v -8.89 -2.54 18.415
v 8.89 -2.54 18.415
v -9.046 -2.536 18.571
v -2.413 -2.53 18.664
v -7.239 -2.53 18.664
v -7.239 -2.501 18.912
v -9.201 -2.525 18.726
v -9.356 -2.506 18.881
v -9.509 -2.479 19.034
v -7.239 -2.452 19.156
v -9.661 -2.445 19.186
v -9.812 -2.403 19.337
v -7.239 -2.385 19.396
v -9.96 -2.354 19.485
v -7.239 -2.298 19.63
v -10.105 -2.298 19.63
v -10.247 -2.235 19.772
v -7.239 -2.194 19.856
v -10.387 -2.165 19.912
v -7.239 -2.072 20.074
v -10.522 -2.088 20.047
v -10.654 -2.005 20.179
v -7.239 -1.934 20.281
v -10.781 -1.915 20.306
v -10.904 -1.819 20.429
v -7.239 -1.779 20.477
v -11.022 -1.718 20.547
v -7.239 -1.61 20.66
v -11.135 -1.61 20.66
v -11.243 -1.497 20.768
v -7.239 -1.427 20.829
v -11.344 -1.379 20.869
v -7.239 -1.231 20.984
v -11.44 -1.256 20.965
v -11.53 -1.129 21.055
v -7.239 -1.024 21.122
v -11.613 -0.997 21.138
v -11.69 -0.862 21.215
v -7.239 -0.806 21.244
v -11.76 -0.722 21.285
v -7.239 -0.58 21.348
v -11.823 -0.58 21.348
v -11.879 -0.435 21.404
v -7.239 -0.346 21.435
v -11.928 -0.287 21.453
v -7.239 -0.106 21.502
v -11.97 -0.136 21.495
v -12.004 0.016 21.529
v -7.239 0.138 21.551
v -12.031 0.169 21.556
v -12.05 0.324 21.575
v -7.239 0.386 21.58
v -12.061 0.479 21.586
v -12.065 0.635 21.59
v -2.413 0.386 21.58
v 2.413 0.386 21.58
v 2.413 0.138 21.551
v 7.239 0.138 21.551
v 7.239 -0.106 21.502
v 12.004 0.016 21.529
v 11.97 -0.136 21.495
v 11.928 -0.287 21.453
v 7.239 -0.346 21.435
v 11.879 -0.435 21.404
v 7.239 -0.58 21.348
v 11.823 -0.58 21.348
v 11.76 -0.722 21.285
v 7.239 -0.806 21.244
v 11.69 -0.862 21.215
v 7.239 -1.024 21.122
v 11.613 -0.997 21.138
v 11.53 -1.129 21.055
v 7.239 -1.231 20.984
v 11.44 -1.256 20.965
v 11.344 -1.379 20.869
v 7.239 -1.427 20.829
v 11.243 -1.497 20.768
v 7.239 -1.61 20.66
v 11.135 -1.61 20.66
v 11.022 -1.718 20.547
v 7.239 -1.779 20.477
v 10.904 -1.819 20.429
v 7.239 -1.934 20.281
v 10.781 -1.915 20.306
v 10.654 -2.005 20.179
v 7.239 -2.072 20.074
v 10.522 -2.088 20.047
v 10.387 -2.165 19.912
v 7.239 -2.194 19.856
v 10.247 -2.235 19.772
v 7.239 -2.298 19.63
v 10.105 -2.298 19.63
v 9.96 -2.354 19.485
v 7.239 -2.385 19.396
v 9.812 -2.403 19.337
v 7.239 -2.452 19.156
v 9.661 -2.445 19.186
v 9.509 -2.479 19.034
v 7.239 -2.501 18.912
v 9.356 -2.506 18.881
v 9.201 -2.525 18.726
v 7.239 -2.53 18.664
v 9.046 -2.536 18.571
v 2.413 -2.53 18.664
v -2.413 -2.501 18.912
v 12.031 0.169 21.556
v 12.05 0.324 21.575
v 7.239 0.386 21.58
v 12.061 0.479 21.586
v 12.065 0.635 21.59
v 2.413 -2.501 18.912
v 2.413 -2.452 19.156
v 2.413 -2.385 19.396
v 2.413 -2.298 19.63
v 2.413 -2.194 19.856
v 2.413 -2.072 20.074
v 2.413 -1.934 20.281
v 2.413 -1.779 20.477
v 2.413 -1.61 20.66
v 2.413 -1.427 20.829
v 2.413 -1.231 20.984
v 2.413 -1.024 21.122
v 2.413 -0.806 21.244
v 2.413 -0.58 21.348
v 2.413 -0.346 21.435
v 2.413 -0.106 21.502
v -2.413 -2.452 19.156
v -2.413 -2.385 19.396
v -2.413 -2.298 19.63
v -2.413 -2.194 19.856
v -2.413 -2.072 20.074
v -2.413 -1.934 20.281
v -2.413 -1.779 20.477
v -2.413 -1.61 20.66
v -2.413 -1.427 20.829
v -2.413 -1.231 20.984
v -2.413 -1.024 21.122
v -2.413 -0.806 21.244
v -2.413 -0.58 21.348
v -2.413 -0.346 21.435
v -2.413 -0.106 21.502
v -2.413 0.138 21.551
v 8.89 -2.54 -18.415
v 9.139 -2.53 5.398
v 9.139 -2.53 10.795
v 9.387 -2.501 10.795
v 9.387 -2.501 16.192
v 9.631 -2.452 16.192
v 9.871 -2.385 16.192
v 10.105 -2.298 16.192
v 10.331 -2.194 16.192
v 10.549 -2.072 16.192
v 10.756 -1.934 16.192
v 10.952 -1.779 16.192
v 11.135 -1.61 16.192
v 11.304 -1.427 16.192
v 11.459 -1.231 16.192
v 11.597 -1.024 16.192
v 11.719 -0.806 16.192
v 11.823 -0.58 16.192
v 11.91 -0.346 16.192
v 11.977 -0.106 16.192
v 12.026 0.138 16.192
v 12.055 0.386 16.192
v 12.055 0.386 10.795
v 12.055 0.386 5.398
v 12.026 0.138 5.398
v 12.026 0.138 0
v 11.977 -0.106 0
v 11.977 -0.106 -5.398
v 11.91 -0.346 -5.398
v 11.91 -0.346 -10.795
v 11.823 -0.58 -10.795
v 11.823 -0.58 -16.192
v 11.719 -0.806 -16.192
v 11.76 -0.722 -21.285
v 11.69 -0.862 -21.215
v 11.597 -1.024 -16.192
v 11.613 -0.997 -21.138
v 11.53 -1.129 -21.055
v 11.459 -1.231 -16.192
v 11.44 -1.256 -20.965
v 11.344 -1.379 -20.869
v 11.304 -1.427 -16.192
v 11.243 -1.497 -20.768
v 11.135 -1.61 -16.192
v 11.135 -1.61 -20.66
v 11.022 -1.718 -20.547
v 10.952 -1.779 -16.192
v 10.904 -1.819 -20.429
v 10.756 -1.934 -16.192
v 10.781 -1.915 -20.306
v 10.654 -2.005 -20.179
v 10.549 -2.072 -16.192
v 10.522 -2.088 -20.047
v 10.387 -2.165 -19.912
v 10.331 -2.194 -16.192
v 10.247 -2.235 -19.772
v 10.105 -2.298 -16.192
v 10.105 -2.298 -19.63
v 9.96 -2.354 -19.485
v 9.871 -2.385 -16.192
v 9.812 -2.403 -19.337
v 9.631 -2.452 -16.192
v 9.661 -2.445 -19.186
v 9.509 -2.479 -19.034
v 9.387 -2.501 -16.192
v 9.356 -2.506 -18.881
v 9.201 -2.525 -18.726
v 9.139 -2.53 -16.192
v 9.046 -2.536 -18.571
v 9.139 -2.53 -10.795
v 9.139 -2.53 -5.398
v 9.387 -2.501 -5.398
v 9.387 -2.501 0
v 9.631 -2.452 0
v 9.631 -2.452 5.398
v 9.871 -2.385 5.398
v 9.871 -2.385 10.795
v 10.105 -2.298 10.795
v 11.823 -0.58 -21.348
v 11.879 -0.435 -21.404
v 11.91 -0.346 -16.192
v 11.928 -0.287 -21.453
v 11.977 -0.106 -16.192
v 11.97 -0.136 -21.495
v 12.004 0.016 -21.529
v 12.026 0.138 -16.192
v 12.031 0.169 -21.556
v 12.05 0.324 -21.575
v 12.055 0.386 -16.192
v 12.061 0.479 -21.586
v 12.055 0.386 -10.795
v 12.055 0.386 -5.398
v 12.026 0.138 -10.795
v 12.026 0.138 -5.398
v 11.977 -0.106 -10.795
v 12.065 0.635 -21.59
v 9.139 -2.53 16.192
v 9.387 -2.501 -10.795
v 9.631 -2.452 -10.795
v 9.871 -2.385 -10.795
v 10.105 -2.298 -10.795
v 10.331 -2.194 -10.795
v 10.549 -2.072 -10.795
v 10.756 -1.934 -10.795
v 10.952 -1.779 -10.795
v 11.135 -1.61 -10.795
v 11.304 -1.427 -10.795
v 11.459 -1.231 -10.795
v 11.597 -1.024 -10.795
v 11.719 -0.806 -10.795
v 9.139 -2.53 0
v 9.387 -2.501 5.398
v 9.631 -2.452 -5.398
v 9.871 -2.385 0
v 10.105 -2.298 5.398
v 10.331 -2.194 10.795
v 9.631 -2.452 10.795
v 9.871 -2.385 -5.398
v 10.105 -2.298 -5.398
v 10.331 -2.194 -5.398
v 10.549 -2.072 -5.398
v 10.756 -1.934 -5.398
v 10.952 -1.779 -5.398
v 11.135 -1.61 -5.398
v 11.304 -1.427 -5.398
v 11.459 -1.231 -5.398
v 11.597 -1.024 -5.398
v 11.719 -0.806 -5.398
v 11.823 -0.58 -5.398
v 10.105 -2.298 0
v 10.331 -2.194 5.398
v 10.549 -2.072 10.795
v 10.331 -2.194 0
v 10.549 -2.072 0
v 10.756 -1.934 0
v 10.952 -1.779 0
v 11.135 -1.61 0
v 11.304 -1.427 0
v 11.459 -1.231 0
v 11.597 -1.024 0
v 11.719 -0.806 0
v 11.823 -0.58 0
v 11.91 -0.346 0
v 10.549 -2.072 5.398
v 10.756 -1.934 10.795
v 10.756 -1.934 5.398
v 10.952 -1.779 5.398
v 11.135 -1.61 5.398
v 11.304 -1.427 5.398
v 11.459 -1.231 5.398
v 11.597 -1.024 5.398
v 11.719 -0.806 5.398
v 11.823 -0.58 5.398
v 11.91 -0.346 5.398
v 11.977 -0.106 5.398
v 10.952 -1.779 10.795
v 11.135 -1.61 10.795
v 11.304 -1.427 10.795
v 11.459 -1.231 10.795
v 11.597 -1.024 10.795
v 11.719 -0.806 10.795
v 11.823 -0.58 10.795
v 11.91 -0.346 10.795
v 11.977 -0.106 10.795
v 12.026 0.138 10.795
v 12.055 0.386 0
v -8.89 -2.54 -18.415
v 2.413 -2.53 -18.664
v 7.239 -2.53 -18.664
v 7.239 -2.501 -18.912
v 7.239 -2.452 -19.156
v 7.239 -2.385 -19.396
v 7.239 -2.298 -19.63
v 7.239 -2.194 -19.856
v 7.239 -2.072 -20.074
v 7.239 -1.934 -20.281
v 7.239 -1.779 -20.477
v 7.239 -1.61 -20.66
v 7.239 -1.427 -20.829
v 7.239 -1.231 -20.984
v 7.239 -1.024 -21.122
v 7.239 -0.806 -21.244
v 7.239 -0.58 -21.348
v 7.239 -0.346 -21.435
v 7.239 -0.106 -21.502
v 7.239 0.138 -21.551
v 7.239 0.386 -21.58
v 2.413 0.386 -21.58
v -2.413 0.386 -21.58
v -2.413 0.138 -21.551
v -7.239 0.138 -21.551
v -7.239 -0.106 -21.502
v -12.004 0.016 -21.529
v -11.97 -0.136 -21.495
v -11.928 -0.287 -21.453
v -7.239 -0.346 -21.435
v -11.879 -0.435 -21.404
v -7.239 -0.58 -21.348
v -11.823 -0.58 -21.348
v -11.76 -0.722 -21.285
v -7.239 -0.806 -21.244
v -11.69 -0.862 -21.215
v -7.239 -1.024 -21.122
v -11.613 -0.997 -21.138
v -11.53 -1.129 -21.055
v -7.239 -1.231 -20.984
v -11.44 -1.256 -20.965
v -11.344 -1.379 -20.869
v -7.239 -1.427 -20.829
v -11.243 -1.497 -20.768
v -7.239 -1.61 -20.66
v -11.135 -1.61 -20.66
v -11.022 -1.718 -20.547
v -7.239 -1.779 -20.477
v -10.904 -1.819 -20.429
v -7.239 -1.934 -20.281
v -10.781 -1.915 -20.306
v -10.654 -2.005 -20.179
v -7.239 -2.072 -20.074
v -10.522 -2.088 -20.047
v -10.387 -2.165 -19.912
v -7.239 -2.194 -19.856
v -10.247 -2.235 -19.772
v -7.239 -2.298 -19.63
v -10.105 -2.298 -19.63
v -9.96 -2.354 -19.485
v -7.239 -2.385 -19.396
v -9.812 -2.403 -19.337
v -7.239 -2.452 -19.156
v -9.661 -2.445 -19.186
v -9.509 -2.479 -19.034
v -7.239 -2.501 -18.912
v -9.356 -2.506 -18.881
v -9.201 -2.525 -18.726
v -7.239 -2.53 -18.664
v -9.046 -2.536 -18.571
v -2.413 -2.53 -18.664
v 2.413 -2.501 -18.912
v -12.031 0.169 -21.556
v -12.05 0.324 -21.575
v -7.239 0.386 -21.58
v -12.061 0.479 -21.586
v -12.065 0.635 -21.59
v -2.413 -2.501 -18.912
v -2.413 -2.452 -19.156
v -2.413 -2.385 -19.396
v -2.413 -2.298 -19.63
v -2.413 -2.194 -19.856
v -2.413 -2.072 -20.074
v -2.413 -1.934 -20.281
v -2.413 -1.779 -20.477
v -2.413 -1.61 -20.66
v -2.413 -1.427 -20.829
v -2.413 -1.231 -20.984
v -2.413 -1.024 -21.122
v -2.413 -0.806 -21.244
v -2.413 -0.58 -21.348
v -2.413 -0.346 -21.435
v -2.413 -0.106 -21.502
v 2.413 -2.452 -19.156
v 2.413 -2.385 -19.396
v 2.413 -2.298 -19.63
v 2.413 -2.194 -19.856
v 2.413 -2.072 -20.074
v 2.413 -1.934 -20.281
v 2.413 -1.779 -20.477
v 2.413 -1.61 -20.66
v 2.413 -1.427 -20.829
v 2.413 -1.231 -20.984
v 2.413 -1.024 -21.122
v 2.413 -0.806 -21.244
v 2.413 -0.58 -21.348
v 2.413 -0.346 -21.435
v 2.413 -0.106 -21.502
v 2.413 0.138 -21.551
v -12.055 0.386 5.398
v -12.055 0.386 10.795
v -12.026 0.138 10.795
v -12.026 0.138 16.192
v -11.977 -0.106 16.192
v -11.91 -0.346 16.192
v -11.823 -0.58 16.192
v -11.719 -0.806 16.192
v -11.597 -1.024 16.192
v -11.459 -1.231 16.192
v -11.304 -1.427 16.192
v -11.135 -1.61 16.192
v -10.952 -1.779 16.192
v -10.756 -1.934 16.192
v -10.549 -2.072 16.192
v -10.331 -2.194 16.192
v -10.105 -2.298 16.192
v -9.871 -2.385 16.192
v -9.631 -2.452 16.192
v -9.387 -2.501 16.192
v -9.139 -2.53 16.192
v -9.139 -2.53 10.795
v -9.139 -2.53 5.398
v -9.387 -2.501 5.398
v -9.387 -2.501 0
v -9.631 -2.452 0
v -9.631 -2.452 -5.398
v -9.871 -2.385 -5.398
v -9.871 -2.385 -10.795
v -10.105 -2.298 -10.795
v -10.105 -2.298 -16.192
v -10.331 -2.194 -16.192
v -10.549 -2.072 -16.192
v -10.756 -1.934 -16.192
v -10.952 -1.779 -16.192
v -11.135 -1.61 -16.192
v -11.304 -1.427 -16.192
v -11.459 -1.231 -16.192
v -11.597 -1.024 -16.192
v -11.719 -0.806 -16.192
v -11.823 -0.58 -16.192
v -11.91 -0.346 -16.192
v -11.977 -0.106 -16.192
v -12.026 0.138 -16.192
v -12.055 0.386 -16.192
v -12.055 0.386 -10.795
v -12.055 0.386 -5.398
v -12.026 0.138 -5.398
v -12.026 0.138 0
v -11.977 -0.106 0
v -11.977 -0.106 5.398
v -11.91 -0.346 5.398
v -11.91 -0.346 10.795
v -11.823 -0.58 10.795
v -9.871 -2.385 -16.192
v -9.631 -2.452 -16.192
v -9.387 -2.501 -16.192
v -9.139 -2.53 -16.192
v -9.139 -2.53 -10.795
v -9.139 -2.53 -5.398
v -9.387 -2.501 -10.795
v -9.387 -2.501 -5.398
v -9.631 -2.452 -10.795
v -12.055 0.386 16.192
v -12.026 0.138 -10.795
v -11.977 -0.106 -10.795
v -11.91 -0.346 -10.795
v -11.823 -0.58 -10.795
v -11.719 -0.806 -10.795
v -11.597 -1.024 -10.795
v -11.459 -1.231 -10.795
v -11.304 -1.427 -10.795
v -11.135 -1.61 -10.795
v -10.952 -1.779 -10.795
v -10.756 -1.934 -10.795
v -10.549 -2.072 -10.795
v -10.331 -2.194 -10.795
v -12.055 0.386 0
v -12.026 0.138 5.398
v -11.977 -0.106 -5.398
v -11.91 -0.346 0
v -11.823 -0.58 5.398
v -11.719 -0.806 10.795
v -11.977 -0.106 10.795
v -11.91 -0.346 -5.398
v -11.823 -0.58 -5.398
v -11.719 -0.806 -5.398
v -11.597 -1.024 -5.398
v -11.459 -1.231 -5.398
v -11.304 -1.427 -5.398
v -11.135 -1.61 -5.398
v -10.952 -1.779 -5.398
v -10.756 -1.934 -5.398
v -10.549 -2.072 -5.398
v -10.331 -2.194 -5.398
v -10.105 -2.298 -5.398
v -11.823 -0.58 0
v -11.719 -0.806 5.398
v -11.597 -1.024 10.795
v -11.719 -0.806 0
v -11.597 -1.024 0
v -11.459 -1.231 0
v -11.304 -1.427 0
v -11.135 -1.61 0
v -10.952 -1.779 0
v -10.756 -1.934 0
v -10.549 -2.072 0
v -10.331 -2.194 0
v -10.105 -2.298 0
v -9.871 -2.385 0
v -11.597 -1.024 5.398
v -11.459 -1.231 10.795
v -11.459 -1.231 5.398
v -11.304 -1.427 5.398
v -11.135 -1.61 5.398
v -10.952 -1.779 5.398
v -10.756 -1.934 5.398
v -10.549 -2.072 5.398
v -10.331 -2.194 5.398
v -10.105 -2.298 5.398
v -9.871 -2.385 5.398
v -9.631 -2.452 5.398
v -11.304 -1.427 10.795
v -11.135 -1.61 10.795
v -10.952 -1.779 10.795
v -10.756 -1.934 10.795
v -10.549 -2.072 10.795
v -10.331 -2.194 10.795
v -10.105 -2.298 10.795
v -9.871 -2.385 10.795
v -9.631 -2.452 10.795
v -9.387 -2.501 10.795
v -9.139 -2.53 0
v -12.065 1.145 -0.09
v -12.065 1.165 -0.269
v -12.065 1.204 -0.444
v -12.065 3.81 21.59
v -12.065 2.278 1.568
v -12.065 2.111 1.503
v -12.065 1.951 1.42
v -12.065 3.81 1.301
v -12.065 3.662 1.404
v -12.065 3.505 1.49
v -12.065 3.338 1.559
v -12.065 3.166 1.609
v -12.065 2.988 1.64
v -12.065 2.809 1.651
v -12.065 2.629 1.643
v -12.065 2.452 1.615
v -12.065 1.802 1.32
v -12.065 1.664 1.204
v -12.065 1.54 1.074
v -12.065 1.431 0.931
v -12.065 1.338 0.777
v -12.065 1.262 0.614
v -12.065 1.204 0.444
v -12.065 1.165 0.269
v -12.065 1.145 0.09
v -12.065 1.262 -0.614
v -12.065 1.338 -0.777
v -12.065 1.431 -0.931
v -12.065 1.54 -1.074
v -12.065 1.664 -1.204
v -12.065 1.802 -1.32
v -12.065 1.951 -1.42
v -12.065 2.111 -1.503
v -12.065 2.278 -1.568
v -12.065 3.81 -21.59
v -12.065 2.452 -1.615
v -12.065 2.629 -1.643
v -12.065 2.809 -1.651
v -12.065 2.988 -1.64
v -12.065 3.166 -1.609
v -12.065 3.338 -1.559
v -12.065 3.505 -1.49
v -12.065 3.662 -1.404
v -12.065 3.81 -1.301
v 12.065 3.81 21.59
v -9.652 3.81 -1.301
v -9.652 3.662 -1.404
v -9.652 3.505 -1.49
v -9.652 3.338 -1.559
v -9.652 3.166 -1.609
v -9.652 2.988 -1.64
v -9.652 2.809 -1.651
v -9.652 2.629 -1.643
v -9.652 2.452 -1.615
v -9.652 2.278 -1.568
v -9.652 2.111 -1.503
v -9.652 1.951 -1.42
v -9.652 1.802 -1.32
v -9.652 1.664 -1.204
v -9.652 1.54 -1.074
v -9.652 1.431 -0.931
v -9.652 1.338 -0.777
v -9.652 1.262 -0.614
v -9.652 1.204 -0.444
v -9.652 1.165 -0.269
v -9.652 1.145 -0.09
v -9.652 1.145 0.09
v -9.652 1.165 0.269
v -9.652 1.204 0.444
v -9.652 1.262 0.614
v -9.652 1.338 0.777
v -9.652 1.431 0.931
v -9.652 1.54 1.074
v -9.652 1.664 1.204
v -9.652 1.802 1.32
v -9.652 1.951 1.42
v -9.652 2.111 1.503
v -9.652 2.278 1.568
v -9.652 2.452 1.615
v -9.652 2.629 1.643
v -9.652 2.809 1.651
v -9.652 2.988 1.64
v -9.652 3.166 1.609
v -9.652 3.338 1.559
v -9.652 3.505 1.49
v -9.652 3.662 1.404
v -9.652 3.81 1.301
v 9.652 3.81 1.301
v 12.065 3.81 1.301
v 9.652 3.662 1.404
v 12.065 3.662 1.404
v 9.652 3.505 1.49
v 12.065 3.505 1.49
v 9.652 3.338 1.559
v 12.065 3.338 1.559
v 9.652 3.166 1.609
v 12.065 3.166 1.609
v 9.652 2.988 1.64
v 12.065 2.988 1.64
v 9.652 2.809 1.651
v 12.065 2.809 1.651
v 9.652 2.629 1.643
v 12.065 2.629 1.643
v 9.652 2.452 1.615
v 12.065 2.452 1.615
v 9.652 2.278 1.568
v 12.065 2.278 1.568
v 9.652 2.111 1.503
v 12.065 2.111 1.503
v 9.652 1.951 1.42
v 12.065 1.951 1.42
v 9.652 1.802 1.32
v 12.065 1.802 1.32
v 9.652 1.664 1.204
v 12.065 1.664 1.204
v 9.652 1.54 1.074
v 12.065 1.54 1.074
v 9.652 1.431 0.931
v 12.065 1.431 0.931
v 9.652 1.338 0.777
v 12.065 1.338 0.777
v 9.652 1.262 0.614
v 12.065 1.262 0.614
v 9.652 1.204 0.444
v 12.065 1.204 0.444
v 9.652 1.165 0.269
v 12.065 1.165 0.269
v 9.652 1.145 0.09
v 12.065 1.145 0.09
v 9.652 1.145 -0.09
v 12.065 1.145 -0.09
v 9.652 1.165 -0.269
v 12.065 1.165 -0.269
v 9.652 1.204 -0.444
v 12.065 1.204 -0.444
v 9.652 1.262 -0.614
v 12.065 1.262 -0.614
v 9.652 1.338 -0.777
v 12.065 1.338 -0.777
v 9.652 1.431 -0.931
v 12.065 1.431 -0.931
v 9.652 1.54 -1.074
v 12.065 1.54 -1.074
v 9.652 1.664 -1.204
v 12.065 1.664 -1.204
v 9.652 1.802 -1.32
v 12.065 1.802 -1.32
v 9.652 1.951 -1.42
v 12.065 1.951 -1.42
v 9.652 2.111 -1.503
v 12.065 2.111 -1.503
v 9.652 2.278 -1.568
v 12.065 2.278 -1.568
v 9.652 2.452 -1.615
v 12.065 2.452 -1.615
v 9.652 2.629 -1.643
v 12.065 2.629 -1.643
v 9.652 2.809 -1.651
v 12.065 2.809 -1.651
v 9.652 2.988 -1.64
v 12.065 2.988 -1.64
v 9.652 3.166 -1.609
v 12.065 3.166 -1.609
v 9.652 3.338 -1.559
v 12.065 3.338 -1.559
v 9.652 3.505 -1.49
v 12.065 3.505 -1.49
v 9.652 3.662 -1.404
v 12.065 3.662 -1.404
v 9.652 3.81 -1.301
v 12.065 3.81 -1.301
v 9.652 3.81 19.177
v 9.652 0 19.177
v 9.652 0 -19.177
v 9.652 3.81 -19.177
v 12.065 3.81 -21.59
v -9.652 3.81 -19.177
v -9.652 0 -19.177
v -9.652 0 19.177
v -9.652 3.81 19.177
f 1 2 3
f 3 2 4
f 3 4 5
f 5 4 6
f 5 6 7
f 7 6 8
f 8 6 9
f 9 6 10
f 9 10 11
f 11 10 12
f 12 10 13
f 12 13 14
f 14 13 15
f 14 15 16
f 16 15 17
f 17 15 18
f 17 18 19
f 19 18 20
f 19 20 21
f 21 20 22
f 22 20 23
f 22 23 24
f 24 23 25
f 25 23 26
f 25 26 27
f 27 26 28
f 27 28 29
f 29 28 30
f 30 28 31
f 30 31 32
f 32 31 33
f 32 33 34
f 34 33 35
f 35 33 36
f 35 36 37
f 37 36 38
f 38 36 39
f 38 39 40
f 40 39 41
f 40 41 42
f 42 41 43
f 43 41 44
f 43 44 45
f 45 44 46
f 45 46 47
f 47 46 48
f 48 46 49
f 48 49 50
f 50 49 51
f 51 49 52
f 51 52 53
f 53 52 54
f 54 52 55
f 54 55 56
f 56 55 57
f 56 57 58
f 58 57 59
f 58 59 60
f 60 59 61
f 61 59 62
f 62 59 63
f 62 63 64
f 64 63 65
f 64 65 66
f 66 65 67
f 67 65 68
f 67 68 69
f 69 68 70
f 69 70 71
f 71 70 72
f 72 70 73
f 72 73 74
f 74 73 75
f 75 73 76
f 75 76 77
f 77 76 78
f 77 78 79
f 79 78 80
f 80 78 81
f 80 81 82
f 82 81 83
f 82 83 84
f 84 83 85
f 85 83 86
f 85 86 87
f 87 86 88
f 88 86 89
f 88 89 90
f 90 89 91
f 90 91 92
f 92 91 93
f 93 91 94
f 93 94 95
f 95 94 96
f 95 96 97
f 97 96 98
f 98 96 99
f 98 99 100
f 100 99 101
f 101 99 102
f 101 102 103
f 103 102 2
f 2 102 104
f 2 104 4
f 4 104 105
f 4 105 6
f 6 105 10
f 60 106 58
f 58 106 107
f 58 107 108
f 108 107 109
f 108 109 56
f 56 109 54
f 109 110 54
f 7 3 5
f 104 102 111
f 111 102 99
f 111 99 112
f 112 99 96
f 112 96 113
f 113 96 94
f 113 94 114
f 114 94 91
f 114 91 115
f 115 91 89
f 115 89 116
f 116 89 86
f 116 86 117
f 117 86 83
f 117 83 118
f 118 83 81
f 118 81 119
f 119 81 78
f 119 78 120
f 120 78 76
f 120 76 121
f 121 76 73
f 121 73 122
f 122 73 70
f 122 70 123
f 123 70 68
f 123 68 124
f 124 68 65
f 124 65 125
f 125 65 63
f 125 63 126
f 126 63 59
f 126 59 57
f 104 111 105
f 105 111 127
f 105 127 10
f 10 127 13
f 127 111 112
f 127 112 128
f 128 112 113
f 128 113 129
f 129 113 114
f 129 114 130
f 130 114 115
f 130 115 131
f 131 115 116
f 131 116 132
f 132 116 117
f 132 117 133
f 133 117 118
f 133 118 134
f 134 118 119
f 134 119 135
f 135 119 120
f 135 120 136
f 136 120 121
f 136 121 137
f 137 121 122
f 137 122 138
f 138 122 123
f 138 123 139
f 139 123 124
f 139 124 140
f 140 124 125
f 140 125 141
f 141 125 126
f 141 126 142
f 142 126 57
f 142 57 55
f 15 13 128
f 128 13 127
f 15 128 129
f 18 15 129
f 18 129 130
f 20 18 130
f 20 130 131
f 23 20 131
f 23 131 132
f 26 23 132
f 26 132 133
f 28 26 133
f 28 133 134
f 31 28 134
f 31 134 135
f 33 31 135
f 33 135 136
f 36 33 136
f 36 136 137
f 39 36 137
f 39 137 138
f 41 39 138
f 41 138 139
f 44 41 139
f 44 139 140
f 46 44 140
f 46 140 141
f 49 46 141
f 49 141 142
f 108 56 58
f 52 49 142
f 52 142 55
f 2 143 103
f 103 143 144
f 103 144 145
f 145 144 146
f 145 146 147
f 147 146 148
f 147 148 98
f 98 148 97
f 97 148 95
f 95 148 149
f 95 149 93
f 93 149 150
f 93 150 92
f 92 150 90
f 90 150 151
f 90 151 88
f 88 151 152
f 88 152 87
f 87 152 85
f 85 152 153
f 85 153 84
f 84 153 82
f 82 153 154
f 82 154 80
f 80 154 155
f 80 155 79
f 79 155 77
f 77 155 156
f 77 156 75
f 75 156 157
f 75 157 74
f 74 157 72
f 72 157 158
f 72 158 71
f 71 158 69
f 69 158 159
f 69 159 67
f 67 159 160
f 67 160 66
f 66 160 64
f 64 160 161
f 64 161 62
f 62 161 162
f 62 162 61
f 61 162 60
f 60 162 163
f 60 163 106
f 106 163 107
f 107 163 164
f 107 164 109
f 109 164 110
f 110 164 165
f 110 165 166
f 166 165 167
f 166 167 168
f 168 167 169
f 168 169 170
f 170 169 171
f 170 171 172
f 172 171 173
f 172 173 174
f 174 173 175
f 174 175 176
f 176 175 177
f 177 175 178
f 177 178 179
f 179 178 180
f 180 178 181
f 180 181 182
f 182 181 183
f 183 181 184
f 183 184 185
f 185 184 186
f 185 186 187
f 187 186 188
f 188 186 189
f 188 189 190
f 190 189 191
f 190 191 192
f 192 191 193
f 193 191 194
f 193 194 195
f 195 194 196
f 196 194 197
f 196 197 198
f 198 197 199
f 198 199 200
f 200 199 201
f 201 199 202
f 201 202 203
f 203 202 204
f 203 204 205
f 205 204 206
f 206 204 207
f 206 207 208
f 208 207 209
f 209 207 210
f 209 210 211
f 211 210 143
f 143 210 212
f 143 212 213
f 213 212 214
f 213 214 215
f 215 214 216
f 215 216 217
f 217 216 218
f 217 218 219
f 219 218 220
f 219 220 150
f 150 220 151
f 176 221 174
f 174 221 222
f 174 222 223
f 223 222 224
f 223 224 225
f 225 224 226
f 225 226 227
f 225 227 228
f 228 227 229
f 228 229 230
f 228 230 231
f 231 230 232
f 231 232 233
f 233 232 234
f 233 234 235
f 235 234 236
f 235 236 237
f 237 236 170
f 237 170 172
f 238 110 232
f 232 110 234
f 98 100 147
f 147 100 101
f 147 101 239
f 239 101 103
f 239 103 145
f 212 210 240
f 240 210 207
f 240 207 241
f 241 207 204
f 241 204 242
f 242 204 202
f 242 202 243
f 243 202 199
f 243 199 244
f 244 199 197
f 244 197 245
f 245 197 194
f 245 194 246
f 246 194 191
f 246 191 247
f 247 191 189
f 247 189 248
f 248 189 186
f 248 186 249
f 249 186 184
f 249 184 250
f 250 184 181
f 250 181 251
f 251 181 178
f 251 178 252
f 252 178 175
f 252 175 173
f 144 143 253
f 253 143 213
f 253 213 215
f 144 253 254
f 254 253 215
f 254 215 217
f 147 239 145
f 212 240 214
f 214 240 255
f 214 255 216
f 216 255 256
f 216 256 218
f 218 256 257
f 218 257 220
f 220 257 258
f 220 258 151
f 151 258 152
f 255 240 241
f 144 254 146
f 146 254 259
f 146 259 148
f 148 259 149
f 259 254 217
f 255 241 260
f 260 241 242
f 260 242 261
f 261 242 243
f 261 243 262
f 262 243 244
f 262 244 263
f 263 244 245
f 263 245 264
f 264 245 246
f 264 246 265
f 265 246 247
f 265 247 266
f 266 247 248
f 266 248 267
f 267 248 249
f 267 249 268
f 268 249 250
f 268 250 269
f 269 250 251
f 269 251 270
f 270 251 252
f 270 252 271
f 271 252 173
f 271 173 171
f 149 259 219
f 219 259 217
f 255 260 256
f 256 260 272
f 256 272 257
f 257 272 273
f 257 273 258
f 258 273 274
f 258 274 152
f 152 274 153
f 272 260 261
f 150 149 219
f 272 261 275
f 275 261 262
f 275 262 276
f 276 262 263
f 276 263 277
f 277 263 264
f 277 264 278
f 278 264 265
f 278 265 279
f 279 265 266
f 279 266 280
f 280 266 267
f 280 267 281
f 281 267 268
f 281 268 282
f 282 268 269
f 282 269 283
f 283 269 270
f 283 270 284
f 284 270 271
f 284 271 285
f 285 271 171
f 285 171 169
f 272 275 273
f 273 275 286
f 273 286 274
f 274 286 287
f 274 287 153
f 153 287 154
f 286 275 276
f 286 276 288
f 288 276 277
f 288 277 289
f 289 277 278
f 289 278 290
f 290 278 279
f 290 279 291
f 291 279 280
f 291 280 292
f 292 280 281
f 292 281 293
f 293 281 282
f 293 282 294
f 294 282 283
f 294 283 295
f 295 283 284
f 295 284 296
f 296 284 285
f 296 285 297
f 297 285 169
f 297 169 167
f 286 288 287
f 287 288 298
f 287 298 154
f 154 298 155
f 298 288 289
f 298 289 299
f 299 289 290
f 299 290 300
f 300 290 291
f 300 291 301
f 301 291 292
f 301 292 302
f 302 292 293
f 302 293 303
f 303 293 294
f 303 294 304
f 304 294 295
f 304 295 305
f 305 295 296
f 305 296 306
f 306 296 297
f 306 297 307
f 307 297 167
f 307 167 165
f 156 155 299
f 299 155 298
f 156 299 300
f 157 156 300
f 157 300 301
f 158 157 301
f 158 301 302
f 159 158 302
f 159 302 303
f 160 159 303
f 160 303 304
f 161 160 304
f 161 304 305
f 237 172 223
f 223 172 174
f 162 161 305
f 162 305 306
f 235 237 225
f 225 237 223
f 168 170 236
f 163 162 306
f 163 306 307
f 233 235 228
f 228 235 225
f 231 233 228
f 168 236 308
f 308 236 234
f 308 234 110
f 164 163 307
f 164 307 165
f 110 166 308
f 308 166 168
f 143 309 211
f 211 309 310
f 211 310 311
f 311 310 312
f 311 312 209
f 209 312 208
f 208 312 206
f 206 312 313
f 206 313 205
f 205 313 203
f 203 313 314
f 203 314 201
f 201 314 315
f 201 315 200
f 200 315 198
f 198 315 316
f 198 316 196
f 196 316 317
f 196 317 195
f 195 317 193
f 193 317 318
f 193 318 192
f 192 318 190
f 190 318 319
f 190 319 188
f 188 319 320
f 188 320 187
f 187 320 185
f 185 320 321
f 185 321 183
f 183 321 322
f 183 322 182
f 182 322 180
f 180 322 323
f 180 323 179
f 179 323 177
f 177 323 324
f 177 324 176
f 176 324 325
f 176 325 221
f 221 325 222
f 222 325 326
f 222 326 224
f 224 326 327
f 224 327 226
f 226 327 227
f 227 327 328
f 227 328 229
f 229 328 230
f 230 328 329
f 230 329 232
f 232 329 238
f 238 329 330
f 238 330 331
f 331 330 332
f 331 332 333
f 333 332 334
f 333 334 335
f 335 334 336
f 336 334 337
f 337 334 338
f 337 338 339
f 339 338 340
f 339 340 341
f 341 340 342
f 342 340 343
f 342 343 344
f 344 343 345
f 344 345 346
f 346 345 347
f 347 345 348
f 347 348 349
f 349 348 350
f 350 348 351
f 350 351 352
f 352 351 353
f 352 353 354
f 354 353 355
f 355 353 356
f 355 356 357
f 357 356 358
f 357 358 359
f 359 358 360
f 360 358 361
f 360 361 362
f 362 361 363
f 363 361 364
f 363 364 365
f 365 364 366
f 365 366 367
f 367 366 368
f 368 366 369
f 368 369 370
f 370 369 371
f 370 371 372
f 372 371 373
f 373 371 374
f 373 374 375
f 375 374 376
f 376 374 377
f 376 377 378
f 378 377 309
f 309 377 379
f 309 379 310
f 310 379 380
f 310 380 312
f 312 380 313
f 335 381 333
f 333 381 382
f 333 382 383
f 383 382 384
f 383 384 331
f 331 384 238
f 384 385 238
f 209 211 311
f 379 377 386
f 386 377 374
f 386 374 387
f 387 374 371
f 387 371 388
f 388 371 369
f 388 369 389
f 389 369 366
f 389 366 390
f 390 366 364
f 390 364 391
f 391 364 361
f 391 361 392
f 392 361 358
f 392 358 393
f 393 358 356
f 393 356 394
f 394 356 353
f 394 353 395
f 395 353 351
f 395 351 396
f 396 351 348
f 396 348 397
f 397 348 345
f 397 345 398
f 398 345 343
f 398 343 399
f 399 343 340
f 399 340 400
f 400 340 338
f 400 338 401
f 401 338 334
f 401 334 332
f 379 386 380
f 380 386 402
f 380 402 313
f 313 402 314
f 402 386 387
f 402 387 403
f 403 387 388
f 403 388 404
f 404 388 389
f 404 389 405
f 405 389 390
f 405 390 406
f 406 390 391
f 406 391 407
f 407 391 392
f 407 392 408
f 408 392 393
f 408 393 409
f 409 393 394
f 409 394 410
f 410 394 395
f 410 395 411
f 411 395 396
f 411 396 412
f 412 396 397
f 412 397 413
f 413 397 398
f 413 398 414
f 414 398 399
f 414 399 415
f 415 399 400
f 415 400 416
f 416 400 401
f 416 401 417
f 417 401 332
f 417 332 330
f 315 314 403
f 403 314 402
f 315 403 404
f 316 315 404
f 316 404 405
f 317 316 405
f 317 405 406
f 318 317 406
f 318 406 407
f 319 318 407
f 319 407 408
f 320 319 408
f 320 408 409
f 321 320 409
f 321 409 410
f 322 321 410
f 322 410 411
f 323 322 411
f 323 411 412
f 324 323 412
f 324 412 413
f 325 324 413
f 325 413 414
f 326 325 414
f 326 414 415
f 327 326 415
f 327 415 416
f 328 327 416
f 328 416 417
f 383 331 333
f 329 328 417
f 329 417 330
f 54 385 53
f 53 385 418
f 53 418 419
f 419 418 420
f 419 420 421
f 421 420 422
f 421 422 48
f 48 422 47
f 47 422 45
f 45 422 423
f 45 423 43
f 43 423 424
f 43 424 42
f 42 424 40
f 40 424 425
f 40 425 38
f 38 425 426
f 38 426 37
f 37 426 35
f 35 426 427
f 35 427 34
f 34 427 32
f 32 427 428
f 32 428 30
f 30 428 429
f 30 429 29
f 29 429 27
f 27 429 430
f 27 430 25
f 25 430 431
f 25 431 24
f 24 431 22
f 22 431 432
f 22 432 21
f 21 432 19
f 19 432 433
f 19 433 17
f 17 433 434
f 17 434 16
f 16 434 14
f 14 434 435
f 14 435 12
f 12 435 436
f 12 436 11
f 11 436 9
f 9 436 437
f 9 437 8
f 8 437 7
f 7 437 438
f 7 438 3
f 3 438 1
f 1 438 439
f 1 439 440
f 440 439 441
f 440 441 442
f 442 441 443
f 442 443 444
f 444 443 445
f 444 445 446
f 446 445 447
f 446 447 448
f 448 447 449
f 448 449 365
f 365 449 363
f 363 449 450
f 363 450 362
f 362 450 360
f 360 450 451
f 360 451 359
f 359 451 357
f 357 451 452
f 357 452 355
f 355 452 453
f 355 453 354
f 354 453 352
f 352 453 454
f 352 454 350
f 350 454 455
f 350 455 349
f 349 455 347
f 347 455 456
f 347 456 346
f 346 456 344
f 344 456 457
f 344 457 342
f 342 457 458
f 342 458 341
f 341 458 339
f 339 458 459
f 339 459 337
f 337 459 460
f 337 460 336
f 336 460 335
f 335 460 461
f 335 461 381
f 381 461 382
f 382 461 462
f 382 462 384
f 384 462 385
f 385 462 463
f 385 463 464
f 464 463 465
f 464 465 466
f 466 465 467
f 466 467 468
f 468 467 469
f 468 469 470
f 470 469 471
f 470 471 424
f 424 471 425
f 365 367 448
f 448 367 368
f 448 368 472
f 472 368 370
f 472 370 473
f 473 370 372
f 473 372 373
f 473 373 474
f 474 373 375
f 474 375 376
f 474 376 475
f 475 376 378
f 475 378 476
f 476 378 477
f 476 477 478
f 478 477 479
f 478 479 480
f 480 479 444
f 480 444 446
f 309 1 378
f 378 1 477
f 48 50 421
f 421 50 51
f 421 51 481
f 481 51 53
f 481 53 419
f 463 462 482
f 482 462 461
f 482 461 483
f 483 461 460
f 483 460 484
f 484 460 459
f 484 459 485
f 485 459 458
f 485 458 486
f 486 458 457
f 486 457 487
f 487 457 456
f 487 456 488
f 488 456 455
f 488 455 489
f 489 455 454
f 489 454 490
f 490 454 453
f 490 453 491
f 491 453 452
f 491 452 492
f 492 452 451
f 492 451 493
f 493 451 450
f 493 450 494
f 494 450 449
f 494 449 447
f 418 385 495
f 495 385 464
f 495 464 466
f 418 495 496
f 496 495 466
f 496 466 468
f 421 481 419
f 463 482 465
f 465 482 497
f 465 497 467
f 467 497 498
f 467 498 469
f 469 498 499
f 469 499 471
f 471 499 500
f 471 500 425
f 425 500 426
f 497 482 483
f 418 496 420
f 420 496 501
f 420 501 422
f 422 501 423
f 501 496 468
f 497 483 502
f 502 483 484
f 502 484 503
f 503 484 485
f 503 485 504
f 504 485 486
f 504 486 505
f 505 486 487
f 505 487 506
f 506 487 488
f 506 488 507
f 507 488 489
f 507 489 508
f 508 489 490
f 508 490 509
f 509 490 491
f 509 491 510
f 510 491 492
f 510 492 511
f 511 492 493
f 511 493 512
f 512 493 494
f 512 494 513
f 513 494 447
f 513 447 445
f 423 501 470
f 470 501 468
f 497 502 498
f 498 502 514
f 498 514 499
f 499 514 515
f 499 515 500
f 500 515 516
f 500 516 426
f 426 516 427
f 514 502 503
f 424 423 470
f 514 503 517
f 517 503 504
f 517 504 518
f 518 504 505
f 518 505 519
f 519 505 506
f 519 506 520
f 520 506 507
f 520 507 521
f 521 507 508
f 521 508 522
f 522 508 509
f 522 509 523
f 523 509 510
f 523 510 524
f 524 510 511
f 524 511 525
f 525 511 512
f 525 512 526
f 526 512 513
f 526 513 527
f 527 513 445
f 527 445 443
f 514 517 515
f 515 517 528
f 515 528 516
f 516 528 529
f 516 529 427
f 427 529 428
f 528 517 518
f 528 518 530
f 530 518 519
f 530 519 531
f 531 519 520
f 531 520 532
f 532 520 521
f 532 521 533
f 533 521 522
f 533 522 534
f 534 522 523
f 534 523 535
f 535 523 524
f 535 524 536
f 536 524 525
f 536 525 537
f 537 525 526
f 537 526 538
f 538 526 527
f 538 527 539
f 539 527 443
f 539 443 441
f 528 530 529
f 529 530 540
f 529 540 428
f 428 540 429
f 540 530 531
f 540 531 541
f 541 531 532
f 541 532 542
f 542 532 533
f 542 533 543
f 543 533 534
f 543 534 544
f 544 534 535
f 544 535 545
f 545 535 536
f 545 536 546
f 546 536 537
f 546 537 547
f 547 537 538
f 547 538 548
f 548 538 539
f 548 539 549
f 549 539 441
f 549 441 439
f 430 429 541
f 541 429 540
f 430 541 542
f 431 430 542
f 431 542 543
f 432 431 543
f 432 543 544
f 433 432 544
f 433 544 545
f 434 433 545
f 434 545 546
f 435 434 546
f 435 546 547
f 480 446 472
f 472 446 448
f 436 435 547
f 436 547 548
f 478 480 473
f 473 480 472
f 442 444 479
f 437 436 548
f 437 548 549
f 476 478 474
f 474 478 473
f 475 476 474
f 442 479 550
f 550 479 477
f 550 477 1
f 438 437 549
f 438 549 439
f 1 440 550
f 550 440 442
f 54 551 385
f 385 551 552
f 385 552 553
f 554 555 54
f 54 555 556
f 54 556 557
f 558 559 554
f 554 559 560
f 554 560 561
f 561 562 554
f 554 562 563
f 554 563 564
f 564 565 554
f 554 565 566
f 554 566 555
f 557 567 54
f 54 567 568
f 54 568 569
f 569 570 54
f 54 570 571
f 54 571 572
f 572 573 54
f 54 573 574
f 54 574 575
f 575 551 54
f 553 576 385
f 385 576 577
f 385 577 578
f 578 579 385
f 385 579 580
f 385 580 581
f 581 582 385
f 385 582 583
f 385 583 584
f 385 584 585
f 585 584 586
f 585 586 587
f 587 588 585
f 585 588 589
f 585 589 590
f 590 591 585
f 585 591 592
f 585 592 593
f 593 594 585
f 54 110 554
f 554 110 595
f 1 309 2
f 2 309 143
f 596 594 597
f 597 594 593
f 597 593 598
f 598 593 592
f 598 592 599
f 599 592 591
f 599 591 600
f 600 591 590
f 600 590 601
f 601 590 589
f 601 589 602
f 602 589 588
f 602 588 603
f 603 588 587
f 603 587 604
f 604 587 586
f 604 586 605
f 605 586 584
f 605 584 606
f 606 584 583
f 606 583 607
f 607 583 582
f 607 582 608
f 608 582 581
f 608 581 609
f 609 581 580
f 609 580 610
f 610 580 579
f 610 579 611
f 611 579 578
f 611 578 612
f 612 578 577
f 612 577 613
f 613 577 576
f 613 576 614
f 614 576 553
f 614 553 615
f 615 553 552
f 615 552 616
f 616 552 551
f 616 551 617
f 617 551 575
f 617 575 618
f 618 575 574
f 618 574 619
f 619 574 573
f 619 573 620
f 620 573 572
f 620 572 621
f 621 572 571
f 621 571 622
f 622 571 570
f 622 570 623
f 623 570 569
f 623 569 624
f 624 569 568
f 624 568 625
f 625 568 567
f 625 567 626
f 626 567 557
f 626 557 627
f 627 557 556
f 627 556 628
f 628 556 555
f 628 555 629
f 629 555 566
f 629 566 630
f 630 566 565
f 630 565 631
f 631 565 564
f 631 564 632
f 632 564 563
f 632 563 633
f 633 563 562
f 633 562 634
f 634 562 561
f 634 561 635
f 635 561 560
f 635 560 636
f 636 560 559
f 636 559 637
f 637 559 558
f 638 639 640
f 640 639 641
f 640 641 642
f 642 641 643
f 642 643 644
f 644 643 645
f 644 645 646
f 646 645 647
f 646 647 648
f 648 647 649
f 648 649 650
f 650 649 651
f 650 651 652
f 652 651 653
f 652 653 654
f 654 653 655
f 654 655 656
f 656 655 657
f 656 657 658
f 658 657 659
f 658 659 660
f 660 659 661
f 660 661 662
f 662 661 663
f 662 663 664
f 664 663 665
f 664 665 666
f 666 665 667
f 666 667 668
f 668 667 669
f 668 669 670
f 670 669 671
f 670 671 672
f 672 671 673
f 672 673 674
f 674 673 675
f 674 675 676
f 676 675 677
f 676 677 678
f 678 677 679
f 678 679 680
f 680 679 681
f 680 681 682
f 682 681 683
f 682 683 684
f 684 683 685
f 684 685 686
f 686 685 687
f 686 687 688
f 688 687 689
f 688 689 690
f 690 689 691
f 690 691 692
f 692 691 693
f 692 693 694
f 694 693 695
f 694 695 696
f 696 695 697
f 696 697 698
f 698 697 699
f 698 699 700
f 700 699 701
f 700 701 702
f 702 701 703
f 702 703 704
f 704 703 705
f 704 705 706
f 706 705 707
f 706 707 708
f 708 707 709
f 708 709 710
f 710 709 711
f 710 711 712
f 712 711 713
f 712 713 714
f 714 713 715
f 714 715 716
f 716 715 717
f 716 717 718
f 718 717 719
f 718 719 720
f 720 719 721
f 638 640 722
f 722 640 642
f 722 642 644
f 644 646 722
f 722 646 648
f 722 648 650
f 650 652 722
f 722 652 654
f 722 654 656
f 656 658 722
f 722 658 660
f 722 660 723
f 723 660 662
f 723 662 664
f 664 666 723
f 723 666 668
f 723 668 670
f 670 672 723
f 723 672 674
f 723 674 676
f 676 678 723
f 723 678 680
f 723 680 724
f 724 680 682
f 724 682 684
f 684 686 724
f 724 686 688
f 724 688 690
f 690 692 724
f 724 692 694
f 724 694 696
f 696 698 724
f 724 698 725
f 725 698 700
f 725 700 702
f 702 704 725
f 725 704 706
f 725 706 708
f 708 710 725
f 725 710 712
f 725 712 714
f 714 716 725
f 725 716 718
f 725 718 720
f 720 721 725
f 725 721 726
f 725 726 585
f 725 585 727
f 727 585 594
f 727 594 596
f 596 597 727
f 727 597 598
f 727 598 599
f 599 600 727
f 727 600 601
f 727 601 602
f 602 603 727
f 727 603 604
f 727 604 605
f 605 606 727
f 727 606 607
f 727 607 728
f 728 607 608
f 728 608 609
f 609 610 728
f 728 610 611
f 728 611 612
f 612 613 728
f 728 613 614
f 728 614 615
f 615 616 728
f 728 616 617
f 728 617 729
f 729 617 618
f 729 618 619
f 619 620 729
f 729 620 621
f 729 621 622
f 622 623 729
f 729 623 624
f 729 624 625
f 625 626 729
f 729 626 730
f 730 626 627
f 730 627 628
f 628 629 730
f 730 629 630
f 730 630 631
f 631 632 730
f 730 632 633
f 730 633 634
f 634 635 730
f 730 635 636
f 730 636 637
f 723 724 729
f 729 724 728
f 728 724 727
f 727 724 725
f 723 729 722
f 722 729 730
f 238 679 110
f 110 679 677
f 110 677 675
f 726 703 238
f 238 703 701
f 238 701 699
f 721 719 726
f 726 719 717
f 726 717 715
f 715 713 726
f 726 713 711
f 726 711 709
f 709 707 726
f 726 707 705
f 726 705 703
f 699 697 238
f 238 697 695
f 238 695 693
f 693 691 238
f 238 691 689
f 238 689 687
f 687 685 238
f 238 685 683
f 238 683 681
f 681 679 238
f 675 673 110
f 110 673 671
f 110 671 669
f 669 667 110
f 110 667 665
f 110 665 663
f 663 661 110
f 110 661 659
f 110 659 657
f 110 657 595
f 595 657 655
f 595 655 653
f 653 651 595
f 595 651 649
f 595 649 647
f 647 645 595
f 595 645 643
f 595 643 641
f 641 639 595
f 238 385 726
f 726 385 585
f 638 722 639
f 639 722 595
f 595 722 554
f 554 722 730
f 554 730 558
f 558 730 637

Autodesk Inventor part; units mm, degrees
ref_plane "YZ Plane" through (0, 0, 0) normal (1, 0, 0) x (0, 1, 0)
ref_plane "XZ Plane" through (0, 0, 0) normal (0, 1, 0) x (-1, 0, 0)
ref_plane "XY Plane" through (0, 0, 0) normal (0, 0, 1) x (1, 0, 0)
sketch "Sketch1" plane through (0, 0, 0) normal (0, 1, 0) x (-1, 0, 0)
  line L0 (-12.065, 21.59) -> (12.065, 21.59)
  line L1 (12.065, 21.59) -> (12.065, -21.59)
  line L2 (12.065, -21.59) -> (-12.065, -21.59)
  line L3 (-12.065, -21.59) -> (-12.065, 21.59)
  line L4 (-12.065, 21.59) -> (12.065, -21.59) construction
  line L5 (12.065, 21.59) -> (-12.065, -21.59) construction
  line L6 (-9.652, 19.177) -> (9.652, 19.177)
  line L7 (9.652, 19.177) -> (9.652, -19.177)
  line L8 (9.652, -19.177) -> (-9.652, -19.177)
  line L9 (-9.652, -19.177) -> (-9.652, 19.177)
  line L10 (-9.652, 19.177) -> (9.652, -19.177) construction
  line L11 (9.652, 19.177) -> (-9.652, -19.177) construction
  point P0 (0, 0)
  dimension "d0" = 24.13
  dimension "d1" = 43.18
  dimension "d2" = 19.304
  dimension "d3" = 38.354
extrude "Extrusion1" add sketch "Sketch1" along normal blind 3.81
extrude "Extrusion2" add sketch "Sketch1" against normal blind 2.54 contours L0 L1 L2 L3 | L6 L7 L8 L9
sketch "Sketch2" plane through (-9.652, 3.81, 19.177) normal (1, 0, 0) x (0, 0, -1)
  line L0 (19.177, -3.81) -> (19.177, -1.016)
  dimension "d8" = 2.794
hole "Hole1" at (-9.652, 2.794, 0) direction (-1, 0, 0) diameter 3.302 end through all both
fillet "Fillet1" radius 3.175 4 edges at (0, -2.54, -21.59) (12.065, -2.54, 0) (-12.065, -2.54, 0) (0, -2.54, 21.59)
properties part number "HomemadeSensorHousing 8020-Lid"
